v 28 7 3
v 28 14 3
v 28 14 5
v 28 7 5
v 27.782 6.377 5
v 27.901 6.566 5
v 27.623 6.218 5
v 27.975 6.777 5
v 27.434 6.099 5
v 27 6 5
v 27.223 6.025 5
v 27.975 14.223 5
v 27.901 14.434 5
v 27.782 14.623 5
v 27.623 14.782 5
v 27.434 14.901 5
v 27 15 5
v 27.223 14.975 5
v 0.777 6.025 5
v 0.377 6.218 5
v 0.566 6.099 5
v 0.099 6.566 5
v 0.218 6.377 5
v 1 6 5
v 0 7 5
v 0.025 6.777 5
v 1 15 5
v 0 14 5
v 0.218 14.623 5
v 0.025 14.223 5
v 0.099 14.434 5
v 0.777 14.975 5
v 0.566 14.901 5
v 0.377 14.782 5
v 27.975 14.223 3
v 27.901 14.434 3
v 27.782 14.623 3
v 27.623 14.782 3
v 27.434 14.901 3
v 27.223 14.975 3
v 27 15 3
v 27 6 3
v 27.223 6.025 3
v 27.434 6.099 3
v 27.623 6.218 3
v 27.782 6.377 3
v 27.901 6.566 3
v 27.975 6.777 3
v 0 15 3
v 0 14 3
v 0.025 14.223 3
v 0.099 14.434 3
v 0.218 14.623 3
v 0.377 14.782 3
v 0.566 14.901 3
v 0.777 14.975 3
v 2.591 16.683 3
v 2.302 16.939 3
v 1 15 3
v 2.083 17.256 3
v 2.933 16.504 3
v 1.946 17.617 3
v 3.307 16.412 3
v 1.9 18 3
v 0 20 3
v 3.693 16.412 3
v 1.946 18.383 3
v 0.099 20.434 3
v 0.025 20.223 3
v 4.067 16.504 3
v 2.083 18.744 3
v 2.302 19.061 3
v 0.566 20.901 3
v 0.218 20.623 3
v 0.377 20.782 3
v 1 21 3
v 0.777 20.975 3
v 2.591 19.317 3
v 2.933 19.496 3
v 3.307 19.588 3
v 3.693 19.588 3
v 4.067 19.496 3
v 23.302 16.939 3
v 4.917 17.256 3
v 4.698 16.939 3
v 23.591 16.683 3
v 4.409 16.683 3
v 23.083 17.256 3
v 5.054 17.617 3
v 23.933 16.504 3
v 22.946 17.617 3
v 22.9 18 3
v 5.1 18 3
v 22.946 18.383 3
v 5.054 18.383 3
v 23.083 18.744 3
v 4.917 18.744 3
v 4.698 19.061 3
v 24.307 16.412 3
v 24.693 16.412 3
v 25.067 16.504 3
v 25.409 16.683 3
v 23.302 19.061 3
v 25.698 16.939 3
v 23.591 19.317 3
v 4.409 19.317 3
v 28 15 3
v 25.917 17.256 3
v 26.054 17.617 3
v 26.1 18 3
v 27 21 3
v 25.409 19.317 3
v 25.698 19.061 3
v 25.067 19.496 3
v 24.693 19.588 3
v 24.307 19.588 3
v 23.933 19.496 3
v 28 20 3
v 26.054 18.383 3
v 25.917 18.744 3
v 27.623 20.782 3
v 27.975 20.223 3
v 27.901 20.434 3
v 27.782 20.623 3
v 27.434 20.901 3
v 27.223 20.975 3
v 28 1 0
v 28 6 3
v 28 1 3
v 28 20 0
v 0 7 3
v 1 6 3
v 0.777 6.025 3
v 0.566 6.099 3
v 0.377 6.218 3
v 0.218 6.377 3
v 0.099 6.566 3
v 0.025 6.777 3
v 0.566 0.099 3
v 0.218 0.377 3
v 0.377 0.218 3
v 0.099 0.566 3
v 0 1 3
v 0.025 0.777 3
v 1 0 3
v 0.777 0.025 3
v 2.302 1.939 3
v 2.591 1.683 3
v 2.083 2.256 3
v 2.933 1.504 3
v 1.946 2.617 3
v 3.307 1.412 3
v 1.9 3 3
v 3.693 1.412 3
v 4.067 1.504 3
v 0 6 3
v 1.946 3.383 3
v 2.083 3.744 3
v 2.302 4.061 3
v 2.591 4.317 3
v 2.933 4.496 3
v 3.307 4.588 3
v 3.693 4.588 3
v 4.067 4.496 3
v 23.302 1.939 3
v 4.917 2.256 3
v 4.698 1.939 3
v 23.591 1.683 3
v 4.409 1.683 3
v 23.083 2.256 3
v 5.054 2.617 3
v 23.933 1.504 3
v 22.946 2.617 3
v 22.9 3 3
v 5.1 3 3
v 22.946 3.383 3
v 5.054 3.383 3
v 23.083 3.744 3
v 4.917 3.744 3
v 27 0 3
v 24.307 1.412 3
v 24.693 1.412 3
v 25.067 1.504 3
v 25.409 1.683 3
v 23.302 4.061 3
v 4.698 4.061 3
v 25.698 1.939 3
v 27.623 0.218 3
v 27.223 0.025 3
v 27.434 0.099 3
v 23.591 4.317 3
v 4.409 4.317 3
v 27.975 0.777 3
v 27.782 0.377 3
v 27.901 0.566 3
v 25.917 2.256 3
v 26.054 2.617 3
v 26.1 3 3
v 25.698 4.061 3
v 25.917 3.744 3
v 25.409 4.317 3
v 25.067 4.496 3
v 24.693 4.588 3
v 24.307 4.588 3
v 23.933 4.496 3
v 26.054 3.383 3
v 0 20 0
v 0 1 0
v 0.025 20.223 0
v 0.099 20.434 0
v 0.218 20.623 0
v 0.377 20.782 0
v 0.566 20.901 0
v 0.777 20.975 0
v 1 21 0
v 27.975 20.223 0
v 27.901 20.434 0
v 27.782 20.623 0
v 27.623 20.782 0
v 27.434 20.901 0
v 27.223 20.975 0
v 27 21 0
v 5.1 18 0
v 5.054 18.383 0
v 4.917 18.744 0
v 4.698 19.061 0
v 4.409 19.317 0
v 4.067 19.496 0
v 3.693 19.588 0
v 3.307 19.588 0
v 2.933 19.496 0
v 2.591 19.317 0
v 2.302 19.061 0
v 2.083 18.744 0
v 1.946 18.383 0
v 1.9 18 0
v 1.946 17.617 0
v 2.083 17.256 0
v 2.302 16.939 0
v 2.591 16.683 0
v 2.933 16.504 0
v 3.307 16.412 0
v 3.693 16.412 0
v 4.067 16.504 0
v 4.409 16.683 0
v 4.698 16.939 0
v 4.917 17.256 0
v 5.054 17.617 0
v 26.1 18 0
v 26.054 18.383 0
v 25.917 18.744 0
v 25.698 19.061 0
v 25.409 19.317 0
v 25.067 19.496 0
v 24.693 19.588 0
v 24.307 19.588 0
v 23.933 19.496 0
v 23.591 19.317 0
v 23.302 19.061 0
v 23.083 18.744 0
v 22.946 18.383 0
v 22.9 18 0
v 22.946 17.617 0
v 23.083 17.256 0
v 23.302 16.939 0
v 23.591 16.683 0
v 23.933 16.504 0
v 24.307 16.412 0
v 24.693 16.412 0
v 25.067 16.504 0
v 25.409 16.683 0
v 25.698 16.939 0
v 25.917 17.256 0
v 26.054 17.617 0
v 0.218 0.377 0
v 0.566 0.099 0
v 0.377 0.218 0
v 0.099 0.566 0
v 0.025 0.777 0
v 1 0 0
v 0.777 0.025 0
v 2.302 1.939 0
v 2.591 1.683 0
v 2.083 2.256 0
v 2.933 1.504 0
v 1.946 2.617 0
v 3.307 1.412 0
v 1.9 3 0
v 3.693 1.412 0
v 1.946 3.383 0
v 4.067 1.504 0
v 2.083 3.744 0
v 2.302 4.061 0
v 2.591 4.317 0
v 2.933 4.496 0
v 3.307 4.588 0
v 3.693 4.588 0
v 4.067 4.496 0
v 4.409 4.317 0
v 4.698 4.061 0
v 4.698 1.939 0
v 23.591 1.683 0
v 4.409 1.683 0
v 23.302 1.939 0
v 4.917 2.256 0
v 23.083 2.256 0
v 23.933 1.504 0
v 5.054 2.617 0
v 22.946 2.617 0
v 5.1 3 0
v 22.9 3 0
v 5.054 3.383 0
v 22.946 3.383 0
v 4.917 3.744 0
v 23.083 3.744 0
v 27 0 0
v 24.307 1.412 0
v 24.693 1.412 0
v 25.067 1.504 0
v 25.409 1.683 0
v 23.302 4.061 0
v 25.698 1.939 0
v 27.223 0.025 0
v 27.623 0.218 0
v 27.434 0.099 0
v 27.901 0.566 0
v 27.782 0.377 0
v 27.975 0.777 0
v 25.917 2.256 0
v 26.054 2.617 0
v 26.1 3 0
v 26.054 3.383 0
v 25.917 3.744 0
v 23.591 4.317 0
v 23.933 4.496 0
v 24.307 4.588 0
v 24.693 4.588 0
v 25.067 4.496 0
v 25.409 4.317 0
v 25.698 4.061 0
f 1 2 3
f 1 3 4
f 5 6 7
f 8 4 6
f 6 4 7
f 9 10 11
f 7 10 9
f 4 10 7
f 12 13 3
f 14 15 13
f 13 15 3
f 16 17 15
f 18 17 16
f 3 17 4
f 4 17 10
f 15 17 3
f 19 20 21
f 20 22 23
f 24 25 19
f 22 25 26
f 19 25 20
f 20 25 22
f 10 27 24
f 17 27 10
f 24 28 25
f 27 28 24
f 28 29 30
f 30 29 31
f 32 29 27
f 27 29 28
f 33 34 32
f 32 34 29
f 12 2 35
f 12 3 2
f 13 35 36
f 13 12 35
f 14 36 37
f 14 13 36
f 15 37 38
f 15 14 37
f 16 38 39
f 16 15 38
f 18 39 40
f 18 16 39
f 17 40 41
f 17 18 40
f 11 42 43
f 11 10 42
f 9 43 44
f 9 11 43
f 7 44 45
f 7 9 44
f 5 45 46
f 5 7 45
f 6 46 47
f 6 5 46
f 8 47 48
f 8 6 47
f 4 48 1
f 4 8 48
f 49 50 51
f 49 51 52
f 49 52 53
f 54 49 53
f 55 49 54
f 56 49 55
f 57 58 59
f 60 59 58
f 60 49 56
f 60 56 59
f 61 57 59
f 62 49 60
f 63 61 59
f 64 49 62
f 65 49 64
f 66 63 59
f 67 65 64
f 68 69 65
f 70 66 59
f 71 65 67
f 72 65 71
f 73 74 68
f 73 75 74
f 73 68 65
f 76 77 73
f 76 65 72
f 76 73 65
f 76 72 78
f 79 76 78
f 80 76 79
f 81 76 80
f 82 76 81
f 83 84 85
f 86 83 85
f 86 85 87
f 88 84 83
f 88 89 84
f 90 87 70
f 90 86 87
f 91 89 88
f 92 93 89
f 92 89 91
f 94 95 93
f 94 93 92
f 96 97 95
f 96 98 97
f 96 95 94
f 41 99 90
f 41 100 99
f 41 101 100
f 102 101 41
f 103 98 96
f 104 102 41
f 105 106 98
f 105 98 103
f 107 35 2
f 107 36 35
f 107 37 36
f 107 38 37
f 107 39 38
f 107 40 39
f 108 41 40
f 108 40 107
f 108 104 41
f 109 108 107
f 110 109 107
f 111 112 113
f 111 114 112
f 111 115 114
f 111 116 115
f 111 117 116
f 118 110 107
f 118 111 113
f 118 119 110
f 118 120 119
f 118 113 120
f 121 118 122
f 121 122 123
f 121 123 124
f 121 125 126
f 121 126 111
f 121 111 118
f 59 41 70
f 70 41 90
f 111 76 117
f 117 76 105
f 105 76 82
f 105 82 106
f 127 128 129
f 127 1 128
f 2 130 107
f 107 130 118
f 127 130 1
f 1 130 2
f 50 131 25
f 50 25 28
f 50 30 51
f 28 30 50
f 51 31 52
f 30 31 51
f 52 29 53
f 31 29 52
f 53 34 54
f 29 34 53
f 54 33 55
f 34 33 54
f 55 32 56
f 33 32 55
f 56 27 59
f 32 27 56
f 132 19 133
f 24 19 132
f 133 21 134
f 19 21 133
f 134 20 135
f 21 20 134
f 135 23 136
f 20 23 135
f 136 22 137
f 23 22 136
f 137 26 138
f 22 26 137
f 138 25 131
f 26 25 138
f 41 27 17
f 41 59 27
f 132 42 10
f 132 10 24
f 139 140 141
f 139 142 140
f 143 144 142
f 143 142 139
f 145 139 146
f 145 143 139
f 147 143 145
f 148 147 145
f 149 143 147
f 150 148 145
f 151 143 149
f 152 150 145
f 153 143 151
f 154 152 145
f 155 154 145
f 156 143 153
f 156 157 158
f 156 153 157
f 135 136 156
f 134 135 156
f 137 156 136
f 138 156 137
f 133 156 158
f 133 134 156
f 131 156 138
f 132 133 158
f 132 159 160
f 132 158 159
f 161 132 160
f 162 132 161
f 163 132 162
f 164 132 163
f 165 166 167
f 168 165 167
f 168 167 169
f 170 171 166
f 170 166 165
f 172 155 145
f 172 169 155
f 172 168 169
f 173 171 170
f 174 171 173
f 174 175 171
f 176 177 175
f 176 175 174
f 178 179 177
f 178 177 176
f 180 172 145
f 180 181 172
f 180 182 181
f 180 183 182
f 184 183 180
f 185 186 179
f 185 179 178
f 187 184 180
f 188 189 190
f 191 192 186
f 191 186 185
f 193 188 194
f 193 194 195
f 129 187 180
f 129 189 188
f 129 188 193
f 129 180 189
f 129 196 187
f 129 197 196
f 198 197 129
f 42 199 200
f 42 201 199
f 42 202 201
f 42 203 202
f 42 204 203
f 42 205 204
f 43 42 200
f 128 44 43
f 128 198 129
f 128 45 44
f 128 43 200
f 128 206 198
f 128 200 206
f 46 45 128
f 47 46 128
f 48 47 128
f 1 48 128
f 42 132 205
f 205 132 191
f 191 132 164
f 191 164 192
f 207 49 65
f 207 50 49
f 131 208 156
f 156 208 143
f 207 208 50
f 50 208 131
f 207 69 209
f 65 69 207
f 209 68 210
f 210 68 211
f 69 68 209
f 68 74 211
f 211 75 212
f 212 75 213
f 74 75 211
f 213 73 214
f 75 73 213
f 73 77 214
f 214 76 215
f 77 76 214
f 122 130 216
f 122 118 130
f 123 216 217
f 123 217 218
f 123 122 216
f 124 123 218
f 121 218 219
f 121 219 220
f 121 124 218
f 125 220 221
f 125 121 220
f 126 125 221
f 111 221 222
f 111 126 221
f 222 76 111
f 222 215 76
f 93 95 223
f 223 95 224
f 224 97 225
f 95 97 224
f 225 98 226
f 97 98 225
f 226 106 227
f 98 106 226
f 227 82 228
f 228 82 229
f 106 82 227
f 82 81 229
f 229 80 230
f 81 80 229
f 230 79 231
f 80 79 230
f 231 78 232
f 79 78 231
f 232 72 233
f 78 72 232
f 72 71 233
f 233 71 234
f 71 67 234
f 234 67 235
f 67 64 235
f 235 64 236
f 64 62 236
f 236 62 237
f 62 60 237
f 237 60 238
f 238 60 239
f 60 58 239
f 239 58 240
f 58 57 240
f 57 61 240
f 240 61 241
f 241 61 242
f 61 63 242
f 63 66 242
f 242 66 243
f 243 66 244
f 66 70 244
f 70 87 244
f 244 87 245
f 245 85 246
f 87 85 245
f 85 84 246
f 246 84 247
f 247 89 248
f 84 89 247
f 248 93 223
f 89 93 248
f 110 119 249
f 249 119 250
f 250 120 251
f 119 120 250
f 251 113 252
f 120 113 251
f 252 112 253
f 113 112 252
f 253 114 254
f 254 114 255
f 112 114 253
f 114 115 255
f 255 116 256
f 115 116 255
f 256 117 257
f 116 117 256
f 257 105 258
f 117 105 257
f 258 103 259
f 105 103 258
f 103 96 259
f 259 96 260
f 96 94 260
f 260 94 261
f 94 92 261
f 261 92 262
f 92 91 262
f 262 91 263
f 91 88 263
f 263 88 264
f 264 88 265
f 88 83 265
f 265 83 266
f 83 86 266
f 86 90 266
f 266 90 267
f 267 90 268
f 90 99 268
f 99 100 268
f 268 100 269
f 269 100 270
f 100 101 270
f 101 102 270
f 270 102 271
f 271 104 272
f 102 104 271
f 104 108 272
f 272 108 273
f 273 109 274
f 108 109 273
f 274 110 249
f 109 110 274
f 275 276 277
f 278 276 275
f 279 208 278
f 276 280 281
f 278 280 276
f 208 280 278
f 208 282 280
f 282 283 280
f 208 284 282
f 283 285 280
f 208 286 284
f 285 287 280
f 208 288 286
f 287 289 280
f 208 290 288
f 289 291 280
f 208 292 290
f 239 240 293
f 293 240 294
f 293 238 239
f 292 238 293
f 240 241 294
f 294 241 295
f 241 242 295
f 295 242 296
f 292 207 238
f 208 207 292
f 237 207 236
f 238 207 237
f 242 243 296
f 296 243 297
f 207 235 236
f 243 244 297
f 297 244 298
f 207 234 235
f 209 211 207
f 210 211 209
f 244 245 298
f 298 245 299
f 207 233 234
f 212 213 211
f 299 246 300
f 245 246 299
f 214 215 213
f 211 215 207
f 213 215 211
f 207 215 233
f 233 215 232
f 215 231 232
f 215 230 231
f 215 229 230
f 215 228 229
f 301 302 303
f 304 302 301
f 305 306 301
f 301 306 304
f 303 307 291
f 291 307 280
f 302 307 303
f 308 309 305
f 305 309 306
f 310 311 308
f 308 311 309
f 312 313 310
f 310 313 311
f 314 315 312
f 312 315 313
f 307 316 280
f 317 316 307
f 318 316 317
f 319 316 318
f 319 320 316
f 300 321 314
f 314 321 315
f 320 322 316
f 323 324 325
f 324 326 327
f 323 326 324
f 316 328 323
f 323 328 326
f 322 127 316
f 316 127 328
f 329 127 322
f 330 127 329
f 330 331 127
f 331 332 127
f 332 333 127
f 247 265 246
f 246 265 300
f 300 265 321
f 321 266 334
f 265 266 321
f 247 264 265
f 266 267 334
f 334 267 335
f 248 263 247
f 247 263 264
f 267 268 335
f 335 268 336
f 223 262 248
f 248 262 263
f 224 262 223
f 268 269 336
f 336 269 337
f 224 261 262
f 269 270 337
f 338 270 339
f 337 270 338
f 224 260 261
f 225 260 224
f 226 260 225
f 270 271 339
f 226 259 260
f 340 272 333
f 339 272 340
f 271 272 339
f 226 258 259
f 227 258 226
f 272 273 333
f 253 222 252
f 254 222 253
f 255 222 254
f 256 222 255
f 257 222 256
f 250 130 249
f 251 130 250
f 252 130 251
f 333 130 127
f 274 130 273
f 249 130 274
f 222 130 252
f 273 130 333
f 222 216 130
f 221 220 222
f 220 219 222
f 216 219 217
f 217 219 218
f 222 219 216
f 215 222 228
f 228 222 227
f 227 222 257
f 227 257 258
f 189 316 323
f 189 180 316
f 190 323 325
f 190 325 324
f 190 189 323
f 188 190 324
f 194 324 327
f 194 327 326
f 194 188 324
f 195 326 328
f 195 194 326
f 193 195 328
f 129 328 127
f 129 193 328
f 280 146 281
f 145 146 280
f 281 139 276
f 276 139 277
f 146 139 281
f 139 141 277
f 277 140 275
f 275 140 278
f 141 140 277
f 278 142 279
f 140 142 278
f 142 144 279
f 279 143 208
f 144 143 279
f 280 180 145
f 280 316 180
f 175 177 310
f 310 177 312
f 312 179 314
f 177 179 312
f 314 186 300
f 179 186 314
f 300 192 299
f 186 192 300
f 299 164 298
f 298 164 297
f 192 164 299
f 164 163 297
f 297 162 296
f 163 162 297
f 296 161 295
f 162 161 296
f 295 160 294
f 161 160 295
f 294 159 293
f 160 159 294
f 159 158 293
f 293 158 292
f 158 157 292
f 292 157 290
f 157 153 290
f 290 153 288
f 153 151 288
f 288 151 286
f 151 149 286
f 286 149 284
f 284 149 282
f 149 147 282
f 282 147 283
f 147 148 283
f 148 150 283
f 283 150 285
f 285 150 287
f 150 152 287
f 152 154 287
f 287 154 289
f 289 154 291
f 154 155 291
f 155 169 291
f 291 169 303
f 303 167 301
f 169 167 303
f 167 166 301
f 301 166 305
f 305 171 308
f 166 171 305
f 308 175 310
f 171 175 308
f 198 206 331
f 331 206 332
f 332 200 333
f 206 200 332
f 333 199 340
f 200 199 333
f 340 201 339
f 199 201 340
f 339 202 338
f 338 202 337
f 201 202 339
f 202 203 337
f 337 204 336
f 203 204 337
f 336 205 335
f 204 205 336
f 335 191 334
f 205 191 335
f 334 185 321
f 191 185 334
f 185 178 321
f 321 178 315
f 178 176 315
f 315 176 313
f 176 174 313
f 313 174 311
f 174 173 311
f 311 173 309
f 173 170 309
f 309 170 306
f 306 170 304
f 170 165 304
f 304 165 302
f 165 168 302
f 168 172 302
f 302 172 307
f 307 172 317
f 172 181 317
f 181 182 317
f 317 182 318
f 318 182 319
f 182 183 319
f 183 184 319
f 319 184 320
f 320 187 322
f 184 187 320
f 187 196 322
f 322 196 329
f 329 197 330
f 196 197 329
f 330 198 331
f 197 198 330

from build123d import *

# Parameters (mm, degrees)
SKETCH_W     = 28
SKETCH_H     = 21
PAD_DEPTH    = 3
SKETCH001_W  = 28
SKETCH001_H  = 9
PAD001_DEPTH = 2
SKETCH002_R  = 1.6
POCKET_DEPTH = 3.001
FILLET_R     = 1
FILLET001_R  = 1
FILLET002_R  = 1
FILLET003_R  = 1


with BuildPart() as part:
    # Sketch → Pad (new body)
    with BuildSketch(Plane.XY):
        with Locations((14, 10.5)):
            Rectangle(SKETCH_W, SKETCH_H)
    extrude(amount=PAD_DEPTH)

    # Sketch001 (on Face6 of Pad) → Pad001 (join)
    with BuildSketch(Plane.XY.offset(3)):
        with Locations((14, 10.5)):
            Rectangle(SKETCH001_W, SKETCH001_H)
    extrude(amount=PAD001_DEPTH)

    # Sketch002 (on Face5 of Pad001) → Pocket (cut, through all)
    with BuildSketch(Plane.XY.offset(3)):
        with Locations((3.5, 3)):
            Circle(SKETCH002_R)
        with Locations((24.5, 3)):
            Circle(SKETCH002_R)
        with Locations((3.5, 18)):
            Circle(SKETCH002_R)
        with Locations((24.5, 18)):
            Circle(SKETCH002_R)
    extrude(amount=-POCKET_DEPTH, mode=Mode.SUBTRACT)

    # Fillet
    fillet_edges = [part.edges().sort_by_distance(p)[0] for p in [
        (28, 0, 1.5),
        (28, 21, 1.5),
        (0, 0, 1.5),
        (0, 21, 1.5),
    ]]
    fillet(fillet_edges, radius=FILLET_R)

    # Fillet001
    fillet001_edges = [part.edges().sort_by_distance(p)[0] for p in [
        (0, 6, 4),
    ]]
    fillet(fillet001_edges, radius=FILLET001_R)

    # Fillet002
    fillet002_edges = [part.edges().sort_by_distance(p)[0] for p in [
        (28, 6, 4),
    ]]
    fillet(fillet002_edges, radius=FILLET002_R)

    # Fillet003
    fillet003_edges = [part.edges().sort_by_distance(p)[0] for p in [
        (0, 15, 4),
        (28, 15, 4),
    ]]
    fillet(fillet003_edges, radius=FILLET003_R)


solid = part.part
